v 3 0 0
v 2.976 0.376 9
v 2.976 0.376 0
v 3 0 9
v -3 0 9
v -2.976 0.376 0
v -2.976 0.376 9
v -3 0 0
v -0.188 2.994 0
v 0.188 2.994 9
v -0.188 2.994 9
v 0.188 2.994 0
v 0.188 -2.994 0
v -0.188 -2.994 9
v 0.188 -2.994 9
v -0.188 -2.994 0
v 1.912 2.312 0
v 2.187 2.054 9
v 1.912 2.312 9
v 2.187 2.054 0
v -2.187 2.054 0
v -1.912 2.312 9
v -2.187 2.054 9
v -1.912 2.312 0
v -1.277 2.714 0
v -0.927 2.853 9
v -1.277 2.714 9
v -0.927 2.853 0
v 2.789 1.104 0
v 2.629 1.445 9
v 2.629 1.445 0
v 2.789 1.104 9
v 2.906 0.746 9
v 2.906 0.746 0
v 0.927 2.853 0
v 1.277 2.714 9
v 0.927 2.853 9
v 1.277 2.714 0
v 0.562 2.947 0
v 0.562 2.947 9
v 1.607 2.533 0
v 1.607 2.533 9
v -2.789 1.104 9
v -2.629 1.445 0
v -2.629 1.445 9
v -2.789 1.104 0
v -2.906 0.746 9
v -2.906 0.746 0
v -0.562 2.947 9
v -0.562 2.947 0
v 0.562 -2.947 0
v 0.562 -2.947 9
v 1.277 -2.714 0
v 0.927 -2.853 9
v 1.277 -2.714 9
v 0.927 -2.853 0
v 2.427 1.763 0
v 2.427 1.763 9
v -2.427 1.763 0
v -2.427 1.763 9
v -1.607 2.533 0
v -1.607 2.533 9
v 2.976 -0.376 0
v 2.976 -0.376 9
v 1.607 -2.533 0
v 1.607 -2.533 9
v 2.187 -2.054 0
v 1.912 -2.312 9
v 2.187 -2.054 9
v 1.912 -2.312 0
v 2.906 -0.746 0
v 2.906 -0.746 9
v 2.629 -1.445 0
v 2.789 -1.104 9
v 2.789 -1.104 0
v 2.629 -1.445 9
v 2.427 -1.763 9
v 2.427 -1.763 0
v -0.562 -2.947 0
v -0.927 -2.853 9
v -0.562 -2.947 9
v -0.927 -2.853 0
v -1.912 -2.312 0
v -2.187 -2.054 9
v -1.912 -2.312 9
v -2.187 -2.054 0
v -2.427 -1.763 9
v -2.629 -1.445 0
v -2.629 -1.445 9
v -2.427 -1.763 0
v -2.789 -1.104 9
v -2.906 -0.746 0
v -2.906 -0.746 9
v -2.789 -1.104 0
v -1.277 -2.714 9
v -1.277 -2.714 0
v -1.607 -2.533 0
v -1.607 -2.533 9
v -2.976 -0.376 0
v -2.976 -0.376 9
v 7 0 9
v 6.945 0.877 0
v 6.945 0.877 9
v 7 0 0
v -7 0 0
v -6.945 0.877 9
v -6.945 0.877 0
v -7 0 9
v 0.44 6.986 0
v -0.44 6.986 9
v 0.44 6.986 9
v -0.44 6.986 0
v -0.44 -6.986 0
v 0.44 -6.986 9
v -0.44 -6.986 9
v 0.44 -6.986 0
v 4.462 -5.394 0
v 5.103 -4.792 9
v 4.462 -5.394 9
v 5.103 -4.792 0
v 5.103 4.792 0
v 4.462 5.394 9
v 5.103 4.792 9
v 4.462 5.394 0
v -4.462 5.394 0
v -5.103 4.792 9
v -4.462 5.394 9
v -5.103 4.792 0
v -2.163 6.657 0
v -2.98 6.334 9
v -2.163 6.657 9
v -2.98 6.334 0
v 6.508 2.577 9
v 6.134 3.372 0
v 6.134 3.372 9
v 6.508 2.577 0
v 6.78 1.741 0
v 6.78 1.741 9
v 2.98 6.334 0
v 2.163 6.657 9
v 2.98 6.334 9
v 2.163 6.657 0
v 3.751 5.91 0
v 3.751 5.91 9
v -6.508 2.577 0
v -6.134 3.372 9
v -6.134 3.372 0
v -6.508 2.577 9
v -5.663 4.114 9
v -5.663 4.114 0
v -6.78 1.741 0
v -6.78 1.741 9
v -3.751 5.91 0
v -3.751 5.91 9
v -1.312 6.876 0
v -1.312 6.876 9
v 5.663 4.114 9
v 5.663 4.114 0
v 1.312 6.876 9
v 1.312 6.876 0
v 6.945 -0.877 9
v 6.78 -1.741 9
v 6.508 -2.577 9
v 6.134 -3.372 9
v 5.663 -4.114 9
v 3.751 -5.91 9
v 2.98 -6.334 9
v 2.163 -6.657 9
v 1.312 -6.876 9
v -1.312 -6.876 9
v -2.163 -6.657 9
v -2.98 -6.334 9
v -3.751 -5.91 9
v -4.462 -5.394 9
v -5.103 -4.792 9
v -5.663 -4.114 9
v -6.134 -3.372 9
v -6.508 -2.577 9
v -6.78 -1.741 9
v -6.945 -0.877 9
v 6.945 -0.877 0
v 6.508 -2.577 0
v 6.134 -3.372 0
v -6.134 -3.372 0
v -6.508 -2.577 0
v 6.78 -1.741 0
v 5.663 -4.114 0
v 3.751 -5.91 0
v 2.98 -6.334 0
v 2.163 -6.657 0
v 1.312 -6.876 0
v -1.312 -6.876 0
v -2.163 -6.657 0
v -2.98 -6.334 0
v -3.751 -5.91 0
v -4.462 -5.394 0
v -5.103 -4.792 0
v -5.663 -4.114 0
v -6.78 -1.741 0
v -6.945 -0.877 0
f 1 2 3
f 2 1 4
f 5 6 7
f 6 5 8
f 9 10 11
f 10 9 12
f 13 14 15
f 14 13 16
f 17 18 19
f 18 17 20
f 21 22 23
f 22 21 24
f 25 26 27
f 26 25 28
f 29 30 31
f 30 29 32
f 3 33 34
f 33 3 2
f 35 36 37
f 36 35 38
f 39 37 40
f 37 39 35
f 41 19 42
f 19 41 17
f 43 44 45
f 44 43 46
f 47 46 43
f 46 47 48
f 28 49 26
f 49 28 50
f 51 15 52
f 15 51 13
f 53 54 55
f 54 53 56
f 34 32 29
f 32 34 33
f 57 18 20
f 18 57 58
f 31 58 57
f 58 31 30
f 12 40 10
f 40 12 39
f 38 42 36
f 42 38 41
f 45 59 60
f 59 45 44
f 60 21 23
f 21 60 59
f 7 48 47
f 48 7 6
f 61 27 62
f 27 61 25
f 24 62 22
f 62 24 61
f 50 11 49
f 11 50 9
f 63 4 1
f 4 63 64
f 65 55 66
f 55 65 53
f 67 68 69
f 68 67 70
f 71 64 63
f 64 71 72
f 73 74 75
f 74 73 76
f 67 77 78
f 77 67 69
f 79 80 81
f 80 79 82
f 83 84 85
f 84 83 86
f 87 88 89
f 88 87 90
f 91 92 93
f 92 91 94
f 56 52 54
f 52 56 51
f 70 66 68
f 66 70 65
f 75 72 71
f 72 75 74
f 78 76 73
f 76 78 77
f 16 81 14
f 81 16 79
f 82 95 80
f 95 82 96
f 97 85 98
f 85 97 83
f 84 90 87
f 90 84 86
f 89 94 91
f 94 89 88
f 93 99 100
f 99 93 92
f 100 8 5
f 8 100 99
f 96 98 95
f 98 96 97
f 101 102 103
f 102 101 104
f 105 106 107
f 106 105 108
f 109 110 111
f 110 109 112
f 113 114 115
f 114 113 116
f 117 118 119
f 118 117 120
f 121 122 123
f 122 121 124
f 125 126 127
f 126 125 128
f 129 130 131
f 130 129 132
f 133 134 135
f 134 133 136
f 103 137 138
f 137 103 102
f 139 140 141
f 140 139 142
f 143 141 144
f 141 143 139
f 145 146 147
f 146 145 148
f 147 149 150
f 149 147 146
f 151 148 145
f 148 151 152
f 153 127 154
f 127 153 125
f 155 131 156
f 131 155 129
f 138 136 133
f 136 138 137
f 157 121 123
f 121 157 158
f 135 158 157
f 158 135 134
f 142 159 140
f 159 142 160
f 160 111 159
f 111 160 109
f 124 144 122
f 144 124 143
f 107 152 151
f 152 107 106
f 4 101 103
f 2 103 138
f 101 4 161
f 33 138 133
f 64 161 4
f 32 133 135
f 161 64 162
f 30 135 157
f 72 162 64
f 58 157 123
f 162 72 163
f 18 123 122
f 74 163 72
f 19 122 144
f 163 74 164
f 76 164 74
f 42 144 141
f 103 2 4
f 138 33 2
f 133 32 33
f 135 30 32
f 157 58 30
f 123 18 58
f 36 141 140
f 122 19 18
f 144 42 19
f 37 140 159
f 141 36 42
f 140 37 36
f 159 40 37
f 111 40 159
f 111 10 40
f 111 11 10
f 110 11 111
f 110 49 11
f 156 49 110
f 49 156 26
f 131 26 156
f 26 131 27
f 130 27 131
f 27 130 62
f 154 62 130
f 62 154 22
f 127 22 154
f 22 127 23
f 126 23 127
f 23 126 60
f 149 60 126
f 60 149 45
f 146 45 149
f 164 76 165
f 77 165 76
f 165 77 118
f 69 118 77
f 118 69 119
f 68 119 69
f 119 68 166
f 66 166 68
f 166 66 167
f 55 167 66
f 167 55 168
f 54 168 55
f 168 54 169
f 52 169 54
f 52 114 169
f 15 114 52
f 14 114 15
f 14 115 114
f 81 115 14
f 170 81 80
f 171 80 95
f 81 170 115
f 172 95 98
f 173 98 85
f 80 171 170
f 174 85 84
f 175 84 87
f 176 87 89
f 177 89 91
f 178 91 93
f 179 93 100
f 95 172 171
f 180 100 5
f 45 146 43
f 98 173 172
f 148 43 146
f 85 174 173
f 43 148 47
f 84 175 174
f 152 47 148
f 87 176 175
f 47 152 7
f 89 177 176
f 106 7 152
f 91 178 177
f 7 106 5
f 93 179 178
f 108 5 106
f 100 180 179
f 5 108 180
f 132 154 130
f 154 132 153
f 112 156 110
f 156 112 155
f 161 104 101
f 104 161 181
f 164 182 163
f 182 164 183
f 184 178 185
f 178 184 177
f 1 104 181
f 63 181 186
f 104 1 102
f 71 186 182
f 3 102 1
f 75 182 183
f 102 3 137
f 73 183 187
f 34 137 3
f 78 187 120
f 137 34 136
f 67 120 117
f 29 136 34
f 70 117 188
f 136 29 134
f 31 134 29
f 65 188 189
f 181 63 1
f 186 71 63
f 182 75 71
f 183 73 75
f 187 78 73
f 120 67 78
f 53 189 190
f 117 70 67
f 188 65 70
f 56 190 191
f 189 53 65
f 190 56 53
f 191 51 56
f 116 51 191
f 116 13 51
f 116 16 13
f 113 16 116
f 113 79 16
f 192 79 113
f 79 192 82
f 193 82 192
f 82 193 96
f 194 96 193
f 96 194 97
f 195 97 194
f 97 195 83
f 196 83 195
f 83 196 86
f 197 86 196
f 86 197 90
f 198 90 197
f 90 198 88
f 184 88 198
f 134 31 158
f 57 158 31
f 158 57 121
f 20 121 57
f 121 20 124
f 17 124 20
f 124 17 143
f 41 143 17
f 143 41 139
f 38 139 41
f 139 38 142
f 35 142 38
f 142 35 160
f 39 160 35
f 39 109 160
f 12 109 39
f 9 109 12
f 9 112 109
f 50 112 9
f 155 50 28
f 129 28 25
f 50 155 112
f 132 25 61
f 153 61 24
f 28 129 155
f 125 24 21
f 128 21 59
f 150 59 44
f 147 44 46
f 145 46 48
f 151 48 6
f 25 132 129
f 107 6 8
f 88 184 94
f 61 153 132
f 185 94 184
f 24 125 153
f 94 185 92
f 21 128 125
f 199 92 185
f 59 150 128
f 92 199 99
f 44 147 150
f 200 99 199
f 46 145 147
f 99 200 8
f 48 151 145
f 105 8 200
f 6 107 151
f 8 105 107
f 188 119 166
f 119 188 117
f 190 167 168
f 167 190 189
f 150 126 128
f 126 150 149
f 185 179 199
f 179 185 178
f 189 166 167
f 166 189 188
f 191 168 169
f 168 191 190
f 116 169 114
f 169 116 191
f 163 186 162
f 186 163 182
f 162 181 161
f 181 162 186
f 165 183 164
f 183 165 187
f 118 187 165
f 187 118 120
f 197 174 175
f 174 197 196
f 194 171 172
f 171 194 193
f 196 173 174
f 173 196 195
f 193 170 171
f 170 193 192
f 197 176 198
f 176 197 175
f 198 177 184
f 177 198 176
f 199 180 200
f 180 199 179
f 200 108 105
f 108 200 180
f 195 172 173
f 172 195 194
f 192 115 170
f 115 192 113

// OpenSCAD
$fn = 50;


difference() {
	union() {
		cylinder(h = 9, r = 7.0000000000);
	}
	union() {
		translate(v = [0, 0, -100]) {
			cylinder(h = 200, r = 3.0000000000);
		}
		translate(v = [0, 0, -100]) {
			cylinder(h = 200, r = 1.5000000000);
		}
	}
}
